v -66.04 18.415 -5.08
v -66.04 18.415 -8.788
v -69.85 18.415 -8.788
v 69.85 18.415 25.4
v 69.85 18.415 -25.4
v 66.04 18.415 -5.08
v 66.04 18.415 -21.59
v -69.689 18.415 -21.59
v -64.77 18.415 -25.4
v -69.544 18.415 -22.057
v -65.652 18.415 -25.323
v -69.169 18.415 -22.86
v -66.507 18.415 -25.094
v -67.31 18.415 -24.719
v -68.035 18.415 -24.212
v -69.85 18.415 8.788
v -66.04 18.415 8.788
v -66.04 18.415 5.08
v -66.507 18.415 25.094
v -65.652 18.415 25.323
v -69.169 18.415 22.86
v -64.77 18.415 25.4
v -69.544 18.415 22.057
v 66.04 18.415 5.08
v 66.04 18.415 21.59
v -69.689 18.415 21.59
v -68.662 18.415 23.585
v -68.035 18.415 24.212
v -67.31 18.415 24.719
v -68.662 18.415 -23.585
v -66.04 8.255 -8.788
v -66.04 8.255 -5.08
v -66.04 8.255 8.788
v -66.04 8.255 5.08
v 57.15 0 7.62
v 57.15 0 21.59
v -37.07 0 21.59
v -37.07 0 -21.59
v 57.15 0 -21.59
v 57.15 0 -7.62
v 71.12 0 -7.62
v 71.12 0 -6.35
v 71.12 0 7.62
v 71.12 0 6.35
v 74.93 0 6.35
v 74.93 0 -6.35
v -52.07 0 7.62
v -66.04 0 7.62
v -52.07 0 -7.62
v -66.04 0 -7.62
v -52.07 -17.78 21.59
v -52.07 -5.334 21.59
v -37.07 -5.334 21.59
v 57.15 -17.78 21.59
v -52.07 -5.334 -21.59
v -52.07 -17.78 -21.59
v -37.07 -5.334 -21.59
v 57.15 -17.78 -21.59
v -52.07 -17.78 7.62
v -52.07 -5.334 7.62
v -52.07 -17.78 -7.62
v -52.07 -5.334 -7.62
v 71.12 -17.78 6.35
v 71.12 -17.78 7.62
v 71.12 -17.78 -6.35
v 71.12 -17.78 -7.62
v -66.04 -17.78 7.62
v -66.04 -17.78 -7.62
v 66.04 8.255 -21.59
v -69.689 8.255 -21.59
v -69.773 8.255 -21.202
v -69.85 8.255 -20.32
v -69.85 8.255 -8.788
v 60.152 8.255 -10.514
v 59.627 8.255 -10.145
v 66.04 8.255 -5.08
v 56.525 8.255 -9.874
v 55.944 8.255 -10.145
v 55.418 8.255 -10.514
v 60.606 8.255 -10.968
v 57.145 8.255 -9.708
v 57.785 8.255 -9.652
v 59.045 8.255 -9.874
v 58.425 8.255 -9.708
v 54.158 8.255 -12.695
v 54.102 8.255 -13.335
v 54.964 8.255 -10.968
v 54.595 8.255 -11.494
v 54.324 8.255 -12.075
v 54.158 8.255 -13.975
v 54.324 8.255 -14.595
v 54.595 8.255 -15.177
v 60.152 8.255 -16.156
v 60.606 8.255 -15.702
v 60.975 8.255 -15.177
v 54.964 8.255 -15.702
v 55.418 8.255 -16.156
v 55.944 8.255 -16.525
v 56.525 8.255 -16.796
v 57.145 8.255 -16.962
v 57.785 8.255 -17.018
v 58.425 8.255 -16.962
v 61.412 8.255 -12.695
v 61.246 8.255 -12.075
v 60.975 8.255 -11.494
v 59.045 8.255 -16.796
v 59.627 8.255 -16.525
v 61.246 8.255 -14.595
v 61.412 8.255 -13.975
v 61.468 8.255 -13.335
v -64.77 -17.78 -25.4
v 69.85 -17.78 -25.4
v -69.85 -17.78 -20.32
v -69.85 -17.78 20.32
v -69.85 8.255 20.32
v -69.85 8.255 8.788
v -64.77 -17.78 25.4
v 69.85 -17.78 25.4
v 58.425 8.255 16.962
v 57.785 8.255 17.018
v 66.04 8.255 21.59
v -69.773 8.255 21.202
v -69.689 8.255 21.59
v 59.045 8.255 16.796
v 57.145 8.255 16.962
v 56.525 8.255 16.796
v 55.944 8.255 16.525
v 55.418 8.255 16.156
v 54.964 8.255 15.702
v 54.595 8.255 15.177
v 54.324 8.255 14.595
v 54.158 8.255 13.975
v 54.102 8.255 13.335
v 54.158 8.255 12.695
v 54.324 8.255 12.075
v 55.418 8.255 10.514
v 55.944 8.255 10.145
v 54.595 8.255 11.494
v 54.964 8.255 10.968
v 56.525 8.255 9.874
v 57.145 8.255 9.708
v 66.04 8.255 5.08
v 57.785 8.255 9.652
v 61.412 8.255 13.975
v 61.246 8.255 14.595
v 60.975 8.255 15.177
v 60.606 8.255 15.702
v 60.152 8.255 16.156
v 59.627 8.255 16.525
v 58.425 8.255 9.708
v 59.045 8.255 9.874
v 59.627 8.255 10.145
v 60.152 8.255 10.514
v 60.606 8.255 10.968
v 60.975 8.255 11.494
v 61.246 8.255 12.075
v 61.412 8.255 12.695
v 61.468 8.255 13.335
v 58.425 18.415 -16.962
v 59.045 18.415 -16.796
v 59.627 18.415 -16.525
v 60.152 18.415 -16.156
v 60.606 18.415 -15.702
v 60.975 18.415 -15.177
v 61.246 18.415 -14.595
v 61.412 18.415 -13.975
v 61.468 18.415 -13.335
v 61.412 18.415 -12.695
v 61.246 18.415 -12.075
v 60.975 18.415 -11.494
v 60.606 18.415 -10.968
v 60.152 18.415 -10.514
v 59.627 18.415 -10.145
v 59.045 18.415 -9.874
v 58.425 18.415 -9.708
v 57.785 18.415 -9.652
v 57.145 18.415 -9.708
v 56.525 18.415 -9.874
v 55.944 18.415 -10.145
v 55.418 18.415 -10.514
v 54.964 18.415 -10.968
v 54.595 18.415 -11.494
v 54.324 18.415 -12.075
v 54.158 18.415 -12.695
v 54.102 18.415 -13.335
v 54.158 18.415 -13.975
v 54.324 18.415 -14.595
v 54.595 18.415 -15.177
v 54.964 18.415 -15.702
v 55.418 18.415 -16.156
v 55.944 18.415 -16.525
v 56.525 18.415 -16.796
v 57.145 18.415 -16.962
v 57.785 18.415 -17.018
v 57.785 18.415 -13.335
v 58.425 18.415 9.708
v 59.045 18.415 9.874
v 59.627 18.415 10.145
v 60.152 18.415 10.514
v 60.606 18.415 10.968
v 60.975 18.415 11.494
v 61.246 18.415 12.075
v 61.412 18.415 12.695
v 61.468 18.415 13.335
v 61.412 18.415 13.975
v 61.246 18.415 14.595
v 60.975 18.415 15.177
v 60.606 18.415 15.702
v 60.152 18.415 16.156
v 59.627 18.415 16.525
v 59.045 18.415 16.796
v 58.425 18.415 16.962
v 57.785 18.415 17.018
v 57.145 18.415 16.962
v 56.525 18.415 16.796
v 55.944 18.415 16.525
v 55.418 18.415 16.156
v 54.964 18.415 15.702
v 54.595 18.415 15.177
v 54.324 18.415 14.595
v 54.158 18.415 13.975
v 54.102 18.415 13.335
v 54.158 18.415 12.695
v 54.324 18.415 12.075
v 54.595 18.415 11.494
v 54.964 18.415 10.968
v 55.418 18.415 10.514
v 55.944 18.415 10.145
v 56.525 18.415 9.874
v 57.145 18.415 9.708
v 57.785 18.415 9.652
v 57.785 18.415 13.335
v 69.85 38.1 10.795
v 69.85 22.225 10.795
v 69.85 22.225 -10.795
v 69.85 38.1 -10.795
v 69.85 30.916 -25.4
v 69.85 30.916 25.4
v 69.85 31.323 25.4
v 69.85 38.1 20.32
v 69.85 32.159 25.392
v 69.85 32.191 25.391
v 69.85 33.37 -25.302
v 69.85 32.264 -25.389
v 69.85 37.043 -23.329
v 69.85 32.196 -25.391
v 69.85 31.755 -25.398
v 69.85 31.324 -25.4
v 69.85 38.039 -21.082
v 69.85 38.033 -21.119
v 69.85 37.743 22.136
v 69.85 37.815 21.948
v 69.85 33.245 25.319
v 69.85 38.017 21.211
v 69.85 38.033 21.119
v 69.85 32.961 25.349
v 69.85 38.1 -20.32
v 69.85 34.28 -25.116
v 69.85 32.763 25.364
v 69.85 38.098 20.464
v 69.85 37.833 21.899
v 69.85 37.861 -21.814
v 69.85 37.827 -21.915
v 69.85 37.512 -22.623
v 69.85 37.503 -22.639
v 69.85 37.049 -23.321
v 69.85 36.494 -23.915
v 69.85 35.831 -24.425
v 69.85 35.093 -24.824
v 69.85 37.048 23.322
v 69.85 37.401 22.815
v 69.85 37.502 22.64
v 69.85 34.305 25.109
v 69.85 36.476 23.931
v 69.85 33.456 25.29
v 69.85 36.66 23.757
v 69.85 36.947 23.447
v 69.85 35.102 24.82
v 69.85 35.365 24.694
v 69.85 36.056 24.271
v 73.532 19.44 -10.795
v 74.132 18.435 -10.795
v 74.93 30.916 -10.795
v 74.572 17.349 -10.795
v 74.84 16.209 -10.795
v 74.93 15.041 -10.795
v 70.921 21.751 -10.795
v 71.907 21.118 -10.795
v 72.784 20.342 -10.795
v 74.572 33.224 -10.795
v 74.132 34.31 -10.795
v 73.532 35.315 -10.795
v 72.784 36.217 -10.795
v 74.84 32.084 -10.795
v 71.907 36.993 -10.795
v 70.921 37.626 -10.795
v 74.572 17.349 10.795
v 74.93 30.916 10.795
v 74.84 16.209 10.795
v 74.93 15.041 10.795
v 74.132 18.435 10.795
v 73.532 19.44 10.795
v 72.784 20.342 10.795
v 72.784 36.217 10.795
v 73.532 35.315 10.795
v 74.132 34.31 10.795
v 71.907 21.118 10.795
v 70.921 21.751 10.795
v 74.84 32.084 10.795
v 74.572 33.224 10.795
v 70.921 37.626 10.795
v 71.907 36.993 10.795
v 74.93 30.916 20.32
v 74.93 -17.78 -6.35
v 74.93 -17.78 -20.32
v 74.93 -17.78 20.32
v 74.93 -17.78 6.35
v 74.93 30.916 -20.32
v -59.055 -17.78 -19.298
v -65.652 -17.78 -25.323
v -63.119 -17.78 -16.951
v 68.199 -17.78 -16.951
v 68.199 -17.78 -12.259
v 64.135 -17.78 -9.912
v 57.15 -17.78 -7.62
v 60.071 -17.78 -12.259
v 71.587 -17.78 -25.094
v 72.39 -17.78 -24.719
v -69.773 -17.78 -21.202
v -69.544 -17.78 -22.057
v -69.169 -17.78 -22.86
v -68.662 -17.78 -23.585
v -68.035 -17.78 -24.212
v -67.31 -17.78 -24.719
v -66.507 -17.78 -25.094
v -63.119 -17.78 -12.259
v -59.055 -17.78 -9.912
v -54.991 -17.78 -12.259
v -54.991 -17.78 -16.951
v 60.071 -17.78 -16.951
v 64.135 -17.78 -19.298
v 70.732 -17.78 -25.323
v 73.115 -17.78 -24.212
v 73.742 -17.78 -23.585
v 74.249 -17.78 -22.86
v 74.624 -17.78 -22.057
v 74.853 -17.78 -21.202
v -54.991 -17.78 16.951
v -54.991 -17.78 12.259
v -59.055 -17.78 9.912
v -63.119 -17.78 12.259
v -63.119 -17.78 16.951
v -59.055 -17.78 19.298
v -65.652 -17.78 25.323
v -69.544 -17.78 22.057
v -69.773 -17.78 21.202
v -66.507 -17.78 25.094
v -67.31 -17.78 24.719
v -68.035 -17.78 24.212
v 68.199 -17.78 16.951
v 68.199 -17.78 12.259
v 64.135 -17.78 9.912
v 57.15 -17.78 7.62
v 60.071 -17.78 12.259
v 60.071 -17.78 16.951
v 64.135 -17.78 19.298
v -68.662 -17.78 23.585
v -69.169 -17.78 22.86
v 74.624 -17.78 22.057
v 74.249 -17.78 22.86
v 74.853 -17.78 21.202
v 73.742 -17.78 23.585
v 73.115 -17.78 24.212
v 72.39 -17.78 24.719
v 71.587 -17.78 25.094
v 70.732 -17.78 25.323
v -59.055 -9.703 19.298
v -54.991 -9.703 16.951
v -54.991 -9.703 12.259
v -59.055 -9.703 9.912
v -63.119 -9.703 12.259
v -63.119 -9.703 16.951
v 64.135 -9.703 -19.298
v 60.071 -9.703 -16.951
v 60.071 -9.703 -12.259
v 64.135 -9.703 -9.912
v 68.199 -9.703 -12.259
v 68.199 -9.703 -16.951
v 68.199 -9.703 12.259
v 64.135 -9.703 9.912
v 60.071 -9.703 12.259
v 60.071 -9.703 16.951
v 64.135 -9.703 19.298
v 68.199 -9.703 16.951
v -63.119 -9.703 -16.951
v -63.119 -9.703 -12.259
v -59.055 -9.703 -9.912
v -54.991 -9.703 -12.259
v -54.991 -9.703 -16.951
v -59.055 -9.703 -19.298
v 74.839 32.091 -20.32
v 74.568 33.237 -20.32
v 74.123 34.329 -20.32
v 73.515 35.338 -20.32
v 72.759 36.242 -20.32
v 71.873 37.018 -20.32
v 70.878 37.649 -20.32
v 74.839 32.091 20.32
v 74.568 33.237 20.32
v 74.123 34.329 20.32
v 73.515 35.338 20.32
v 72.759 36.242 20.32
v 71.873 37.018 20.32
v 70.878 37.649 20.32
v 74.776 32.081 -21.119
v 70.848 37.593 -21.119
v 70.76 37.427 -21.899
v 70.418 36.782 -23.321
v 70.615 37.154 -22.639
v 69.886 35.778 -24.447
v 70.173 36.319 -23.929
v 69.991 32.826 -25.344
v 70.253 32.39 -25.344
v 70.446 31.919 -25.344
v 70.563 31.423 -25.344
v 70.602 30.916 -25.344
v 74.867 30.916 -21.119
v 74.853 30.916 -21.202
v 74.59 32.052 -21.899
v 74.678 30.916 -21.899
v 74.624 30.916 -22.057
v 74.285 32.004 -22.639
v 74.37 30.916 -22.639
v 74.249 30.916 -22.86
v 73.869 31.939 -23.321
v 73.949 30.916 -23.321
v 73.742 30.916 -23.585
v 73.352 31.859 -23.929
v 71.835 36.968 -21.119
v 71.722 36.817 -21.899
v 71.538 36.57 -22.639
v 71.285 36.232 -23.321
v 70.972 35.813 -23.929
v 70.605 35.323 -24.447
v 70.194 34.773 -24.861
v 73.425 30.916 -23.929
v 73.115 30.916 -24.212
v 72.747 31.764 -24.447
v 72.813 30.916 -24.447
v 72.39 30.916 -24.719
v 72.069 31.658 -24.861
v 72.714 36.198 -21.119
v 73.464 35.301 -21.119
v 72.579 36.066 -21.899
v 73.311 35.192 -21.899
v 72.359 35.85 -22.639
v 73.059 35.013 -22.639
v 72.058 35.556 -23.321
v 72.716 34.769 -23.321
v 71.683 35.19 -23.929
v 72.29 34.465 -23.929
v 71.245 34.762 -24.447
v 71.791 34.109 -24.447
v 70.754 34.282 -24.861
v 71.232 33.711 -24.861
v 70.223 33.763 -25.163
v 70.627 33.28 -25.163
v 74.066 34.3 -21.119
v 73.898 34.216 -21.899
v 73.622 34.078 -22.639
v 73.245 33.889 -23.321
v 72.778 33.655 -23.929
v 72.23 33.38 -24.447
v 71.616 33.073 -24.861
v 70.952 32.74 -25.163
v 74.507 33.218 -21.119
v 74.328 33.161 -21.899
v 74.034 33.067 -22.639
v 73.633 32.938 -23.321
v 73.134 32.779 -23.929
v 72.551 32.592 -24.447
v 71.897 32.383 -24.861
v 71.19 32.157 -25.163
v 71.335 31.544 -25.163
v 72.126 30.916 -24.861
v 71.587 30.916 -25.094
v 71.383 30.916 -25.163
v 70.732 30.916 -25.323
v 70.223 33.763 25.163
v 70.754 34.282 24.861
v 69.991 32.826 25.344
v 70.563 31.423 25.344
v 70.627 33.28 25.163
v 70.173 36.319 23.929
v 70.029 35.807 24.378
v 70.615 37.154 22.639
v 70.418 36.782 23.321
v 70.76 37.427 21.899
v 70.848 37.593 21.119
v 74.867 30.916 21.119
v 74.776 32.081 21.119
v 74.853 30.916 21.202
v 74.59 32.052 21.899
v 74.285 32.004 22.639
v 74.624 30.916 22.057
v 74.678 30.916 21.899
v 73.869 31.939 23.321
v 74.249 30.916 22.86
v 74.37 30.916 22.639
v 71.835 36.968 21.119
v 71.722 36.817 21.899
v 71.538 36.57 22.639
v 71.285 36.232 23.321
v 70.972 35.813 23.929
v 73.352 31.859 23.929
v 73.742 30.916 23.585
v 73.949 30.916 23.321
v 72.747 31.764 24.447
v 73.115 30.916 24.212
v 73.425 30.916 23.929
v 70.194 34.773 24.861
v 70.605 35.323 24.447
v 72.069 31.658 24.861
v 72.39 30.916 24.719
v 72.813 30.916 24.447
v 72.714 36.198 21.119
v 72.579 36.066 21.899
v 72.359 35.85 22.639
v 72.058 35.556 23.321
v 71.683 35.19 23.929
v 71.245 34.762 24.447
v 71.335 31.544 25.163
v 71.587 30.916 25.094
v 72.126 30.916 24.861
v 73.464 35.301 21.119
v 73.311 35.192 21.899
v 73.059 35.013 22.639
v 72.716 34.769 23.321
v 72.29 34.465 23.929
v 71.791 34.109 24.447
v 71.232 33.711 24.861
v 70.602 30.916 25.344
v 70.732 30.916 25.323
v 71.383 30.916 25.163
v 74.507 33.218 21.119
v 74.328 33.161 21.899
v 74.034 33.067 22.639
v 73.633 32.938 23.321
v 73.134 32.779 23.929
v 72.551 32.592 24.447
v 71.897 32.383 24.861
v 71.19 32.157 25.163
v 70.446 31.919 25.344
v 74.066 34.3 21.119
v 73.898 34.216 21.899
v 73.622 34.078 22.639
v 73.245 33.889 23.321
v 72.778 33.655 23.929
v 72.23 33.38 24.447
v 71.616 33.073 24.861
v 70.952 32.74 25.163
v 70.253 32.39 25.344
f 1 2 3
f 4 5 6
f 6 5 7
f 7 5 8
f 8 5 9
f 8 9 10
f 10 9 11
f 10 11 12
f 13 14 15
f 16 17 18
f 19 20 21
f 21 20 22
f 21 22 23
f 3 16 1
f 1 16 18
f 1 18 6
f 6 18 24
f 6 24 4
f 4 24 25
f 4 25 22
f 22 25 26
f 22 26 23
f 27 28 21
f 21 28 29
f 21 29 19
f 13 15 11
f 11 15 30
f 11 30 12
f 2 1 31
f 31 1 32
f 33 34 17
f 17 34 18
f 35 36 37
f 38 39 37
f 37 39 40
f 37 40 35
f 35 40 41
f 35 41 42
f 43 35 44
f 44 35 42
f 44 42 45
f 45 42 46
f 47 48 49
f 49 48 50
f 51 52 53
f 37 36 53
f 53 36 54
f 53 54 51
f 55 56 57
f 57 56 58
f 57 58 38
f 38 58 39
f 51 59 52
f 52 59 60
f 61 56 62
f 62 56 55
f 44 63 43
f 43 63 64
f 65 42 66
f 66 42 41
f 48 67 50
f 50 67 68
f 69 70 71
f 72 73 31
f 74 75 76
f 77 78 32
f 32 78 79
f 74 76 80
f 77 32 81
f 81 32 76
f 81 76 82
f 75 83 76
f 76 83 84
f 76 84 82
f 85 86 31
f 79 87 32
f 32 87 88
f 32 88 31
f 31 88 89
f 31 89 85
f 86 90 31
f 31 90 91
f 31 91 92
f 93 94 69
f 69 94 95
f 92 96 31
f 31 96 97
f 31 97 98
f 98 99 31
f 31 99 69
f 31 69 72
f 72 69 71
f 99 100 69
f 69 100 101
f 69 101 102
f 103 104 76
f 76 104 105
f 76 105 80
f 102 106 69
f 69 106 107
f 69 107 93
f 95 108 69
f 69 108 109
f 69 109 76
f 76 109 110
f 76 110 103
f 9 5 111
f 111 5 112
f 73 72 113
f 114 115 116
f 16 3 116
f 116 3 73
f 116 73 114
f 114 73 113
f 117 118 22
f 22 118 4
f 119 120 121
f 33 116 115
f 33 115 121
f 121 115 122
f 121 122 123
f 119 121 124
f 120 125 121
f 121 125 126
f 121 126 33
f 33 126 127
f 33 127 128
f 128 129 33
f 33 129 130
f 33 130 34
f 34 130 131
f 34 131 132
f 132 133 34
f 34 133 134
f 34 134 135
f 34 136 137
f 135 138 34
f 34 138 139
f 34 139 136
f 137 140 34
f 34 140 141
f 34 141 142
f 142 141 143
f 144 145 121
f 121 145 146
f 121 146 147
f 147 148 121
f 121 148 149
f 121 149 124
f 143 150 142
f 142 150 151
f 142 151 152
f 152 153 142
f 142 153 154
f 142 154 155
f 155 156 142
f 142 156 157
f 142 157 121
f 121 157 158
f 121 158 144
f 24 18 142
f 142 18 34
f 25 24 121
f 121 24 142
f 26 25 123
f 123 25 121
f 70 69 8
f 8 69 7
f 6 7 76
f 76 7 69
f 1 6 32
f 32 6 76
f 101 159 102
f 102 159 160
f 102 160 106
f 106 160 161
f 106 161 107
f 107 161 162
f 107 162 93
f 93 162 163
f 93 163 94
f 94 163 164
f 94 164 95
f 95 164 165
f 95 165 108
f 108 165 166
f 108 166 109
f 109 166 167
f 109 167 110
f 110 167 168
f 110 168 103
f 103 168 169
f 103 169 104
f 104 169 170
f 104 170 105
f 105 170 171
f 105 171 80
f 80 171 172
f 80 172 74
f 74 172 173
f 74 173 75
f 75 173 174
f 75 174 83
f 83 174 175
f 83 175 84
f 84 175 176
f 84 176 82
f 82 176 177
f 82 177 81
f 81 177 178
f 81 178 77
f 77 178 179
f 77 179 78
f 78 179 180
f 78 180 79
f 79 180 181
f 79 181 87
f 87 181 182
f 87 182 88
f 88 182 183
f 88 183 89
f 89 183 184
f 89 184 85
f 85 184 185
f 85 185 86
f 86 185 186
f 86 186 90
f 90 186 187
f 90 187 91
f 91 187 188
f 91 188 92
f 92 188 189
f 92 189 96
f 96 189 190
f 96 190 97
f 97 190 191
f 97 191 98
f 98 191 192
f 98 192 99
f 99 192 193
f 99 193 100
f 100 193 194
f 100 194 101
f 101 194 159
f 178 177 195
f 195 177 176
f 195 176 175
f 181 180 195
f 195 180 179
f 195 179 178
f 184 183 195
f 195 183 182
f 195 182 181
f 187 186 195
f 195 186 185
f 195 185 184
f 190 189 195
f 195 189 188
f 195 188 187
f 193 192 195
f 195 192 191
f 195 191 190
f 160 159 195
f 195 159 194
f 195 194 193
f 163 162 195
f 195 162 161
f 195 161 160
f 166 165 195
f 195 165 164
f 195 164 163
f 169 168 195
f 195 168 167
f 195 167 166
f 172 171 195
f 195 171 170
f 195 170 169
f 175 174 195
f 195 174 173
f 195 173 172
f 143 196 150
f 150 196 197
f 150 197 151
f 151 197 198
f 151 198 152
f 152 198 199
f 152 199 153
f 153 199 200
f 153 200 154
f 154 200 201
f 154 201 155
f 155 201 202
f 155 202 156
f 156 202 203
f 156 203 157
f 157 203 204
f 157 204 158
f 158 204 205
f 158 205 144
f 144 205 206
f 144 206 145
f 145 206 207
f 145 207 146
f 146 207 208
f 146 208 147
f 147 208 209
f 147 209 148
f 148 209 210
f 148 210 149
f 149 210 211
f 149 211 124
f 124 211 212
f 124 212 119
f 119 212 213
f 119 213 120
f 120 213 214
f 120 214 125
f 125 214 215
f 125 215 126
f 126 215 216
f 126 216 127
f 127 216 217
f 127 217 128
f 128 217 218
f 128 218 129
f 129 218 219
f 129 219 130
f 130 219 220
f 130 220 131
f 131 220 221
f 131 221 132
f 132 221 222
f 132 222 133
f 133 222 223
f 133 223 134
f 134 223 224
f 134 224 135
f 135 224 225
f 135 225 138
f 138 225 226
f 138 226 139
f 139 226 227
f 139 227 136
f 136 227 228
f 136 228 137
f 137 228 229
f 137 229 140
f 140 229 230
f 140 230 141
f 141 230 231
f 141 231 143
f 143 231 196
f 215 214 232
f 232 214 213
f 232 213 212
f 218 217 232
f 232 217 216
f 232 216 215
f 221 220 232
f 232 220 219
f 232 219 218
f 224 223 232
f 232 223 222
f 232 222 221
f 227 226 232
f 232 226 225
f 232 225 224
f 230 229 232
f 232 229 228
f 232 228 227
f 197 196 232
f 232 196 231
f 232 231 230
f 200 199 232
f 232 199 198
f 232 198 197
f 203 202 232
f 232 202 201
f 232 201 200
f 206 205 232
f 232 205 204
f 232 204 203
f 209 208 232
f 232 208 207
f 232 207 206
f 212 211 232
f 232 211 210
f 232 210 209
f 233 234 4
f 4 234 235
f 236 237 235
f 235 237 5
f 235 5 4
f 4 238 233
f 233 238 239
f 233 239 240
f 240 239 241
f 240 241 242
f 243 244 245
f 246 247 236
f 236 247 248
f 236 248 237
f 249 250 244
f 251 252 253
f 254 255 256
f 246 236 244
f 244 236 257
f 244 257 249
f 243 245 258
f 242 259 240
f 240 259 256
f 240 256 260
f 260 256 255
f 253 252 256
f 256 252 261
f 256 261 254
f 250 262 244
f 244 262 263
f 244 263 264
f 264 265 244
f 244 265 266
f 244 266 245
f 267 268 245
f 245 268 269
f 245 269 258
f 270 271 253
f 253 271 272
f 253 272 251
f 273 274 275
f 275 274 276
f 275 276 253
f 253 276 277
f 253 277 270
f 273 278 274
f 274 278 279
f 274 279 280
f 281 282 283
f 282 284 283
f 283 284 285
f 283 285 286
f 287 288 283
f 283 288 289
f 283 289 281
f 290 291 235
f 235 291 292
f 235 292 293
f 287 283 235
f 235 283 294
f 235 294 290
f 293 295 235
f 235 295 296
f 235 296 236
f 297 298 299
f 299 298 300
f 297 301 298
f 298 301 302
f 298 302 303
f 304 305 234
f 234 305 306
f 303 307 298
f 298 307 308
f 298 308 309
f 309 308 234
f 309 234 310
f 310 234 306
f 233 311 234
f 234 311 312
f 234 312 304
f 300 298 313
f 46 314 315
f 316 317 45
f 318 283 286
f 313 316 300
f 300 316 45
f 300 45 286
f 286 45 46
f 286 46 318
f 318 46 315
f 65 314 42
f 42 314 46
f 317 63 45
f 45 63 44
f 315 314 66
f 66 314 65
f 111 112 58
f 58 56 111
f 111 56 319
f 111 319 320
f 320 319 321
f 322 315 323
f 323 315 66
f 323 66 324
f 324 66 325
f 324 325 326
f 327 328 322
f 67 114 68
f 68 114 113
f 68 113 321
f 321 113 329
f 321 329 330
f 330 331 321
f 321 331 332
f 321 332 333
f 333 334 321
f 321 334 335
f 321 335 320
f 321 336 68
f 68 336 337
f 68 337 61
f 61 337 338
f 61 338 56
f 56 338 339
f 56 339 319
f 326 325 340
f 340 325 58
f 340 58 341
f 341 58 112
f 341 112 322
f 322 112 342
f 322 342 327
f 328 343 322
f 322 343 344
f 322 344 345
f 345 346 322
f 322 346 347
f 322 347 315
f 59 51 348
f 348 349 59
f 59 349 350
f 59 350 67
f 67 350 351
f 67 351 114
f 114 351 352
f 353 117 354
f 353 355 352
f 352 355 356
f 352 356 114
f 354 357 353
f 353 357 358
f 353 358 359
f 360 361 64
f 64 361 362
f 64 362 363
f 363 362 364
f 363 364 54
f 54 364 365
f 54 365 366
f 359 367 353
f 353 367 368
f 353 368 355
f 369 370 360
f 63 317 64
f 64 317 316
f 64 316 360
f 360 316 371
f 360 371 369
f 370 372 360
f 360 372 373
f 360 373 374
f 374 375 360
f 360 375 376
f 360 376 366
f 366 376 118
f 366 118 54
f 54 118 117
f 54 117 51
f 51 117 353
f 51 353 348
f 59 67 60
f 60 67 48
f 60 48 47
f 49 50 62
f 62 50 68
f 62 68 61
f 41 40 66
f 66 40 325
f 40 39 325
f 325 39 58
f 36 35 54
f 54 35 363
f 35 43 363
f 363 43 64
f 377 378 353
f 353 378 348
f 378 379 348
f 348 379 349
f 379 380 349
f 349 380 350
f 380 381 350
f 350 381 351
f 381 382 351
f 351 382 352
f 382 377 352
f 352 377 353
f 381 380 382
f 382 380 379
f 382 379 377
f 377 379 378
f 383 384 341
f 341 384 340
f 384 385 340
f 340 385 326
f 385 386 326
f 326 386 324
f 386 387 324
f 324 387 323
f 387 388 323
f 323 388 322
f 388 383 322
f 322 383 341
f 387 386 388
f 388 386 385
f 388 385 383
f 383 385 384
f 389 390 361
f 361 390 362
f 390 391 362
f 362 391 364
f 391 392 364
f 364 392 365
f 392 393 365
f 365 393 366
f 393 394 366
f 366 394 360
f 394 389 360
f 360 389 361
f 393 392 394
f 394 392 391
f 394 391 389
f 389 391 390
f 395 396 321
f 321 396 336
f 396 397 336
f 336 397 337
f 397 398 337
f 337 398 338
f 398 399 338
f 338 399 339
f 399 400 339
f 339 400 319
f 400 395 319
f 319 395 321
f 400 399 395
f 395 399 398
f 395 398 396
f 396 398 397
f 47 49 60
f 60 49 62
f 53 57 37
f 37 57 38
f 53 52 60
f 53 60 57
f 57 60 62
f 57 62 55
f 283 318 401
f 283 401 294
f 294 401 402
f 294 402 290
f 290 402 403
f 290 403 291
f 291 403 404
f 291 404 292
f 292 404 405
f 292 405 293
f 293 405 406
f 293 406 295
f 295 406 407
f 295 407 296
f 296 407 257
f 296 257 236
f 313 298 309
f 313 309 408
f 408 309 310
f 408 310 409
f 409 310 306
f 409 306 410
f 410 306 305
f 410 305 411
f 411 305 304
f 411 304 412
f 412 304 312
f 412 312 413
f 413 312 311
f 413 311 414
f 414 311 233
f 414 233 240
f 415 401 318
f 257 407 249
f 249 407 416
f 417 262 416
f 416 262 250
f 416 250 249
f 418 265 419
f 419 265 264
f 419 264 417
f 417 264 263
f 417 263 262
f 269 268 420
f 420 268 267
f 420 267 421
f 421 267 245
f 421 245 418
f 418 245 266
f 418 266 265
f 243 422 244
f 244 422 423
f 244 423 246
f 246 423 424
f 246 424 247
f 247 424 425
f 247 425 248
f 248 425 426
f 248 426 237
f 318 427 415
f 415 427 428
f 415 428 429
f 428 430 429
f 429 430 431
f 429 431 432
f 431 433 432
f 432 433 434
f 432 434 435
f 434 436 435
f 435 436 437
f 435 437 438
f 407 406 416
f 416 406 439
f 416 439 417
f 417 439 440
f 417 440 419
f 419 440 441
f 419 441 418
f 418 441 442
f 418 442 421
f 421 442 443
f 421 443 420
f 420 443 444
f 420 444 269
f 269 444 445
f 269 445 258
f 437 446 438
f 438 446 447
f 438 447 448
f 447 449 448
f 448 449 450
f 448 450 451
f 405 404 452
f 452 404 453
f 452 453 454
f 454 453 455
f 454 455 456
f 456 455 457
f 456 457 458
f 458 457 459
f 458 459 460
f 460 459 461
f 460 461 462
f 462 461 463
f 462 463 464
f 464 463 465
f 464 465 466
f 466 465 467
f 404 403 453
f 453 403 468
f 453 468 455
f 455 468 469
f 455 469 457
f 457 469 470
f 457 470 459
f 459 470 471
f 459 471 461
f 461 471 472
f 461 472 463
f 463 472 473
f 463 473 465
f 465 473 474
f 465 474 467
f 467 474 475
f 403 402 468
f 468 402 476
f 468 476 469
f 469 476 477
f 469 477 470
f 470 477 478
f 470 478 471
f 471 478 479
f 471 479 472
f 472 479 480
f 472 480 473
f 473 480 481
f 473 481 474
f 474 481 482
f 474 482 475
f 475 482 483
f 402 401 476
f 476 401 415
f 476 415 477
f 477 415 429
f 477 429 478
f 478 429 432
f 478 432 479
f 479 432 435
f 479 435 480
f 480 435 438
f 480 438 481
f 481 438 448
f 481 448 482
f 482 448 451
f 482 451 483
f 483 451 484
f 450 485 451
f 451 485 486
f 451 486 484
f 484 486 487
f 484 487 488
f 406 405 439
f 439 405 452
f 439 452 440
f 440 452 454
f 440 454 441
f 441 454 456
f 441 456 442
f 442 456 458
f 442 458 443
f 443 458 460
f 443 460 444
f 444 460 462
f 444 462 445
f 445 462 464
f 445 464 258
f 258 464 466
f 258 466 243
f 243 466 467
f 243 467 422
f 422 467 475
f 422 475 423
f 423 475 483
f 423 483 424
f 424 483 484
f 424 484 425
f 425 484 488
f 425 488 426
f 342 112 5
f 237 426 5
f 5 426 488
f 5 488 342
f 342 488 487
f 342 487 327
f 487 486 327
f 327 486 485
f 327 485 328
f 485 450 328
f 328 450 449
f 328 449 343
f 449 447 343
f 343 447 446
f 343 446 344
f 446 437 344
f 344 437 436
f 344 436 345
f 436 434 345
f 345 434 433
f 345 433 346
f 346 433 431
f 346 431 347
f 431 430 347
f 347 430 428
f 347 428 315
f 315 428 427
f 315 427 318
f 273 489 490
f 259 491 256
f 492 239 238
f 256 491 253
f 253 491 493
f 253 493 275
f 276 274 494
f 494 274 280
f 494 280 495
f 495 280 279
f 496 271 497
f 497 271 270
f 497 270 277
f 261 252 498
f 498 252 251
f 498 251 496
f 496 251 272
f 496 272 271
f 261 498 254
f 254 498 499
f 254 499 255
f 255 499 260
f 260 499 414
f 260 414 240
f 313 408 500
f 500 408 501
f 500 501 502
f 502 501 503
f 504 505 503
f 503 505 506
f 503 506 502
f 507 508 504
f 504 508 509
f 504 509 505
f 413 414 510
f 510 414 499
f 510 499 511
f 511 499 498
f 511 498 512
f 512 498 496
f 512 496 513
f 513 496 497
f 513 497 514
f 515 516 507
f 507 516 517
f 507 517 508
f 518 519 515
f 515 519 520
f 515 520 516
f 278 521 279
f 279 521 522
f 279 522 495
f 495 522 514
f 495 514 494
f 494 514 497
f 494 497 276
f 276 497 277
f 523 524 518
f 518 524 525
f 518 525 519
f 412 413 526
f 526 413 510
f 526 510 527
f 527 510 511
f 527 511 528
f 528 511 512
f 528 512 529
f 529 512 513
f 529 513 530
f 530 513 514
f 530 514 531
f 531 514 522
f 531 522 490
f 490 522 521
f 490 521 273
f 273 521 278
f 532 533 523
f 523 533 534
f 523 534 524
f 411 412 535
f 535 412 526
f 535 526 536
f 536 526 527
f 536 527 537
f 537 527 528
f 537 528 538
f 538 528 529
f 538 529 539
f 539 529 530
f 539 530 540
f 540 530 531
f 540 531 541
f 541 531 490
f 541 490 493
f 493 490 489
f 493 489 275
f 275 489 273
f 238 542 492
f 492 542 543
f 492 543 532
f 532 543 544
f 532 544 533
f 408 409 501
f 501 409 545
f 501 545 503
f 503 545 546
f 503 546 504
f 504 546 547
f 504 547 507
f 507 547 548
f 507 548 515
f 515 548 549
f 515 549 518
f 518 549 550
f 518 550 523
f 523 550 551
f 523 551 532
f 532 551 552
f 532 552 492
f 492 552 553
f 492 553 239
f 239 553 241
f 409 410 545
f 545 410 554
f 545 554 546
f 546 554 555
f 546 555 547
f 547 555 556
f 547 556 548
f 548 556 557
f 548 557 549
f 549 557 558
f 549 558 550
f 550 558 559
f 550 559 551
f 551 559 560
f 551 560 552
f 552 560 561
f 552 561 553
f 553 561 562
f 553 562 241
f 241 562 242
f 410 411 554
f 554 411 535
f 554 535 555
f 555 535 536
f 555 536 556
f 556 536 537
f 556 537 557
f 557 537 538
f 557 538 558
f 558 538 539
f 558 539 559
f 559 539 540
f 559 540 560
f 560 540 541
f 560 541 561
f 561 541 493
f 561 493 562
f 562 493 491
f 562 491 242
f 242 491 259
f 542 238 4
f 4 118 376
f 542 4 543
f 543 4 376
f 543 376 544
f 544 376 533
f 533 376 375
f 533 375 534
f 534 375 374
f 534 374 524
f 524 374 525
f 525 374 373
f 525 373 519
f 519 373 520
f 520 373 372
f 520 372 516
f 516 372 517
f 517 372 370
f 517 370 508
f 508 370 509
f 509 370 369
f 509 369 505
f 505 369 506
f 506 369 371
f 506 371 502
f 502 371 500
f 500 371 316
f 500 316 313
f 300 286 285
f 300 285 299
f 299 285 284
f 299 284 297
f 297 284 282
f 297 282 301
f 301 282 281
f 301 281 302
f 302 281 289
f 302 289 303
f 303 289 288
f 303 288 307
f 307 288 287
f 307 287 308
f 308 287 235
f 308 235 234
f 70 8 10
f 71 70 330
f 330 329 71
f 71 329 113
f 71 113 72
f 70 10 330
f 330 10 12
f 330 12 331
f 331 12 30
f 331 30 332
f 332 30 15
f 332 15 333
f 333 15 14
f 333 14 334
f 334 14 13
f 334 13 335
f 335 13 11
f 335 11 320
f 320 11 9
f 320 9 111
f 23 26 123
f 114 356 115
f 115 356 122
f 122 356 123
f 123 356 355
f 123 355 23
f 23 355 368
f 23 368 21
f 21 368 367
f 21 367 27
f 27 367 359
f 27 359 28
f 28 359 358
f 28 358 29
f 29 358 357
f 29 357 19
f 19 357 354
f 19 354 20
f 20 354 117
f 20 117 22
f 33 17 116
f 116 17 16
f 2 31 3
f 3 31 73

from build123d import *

# Parameters (mm, degrees)
SKETCH1_W              = 139.7
SKETCH1_H              = 50.8
BASE_DEPTH             = 8.255
MECHANISM_WALLS_DEPTH  = 10.16
SKETCH4_R              = 3.683
SPRING_CYLINDERS_DEPTH = 10.16
WALL_DEPTH             = 5.08
CIRCUIT_WALLS_DEPTH    = 17.78
SKETCH8_W              = 13.97
SKETCH8_H              = 13.97
MAGNET_JUNCTIONS_DEPTH = 17.78
MAGNET_HOLES_DEPTH     = 8.0772
SKETCH10_W             = 15
SKETCH10_H             = 43.18
BOSS_EXTRUDE1_DEPTH    = 5.334
FILLET1_R              = 7.62
FILLET2_R              = 5.08
FILLET4_R              = 7.62
FILLET5_R              = 5.08
SKETCH11_W             = 3.81
SKETCH11_H             = 10.16
CUT_EXTRUDE1_DEPTH     = 0.1016
SKETCH12_W             = 17.160016071
SKETCH12_H             = 10.16
CUT_EXTRUDE2_DEPTH     = 0.1016


# Some blends are built 0.0001 mm under size
with BuildPart() as part:
    # Sketch1 → base (new body)
    with BuildSketch(Plane(origin=(0, 0, 0), x_dir=(1, 0, 0), z_dir=(0, 1, 0))):
        Rectangle(SKETCH1_W, SKETCH1_H)
    extrude(amount=BASE_DEPTH)

    # Sketch3 → mechanism walls (add)
    with BuildSketch(Plane(origin=(0, 8.255, 0), x_dir=(1, 0, 0), z_dir=(0, 1, 0))):
        Polygon((69.85, 25.4), (-69.85, 25.4), (-69.85, 21.59), (66.04, 21.59), (66.04, 5.08), (-66.04, 5.08), (-66.04, 8.89), (-69.85, 8.89), (-69.85, -8.89), (-66.04, -8.89), (-66.04, -5.08), (66.04, -5.08), (66.04, -21.59), (-69.85, -21.59), (-69.85, -25.4), (69.85, -25.4), align=None)
    extrude(amount=MECHANISM_WALLS_DEPTH)

    # Sketch4 → spring cylinders (add)
    with BuildSketch(Plane(origin=(0, 8.255, 0), x_dir=(1, 0, 0), z_dir=(0, 1, 0))):
        with Locations(Location((57.785, 13.335, 0), (0, 0, 90))):
            Circle(SKETCH4_R)
        with Locations(Location((57.785, -13.335, 0), (0, 0, 90))):
            Circle(SKETCH4_R)
    extrude(amount=SPRING_CYLINDERS_DEPTH)

    # Sketch6 → wall (add)
    with BuildSketch(Plane(origin=(69.85, 0, 0), x_dir=(0, 0, -1), z_dir=(1, 0, 0))):
        Polygon((-25.4, 0), (25.4, 0), (25.4, 38.1), (10.795, 38.1), (10.795, 22.225), (-10.795, 22.225), (-10.795, 38.1), (-25.4, 38.1), align=None)
    extrude(amount=WALL_DEPTH)

    # Sketch7 → circuit walls (add)
    with BuildSketch(Plane.XZ):
        Polygon((74.93, 25.4), (74.93, 6.35), (71.12, 6.35), (71.12, 21.59), (-66.04, 21.59), (-66.04, -21.59), (71.12, -21.59), (71.12, -6.35), (74.93, -6.35), (74.93, -25.4), (-69.85, -25.4), (-69.85, 25.4), align=None)
    extrude(amount=CIRCUIT_WALLS_DEPTH)

    # Sketch8 → magnet junctions (add)
    with BuildSketch(Plane.XZ):
        with Locations((-59.055, 14.605)):
            Rectangle(SKETCH8_W, SKETCH8_H)
        with Locations((-59.055, -14.605)):
            Rectangle(SKETCH8_W, SKETCH8_H)
        with Locations((64.135, -14.605)):
            Rectangle(SKETCH8_W, SKETCH8_H)
        with Locations((64.135, 14.605)):
            Rectangle(SKETCH8_W, SKETCH8_H)
    extrude(amount=MAGNET_JUNCTIONS_DEPTH)

    # Sketch9 → magnet holes (cut)
    with BuildSketch(Plane.XZ.offset(17.78)):
        Polygon((-59.055, 19.297702988), (-63.119, 16.951351494), (-63.119, 12.258648506), (-59.055, 9.912297012), (-54.991, 12.258648506), (-54.991, 16.951351494), align=None)
        Polygon((-63.119, -12.258648506), (-59.055, -9.912297012), (-54.991, -12.258648506), (-54.991, -16.951351494), (-59.055, -19.297702988), (-63.119, -16.951351494), align=None)
        Polygon((64.135, 9.912297012), (60.071, 12.258648506), (60.071, 16.951351494), (64.135, 19.297702988), (68.199, 16.951351494), (68.199, 12.258648506), align=None)
        Polygon((64.135, -19.297702988), (68.199, -16.951351494), (68.199, -12.258648506), (64.135, -9.912297012), (60.071, -12.258648506), (60.071, -16.951351494), align=None)
    extrude(amount=-MAGNET_HOLES_DEPTH, mode=Mode.SUBTRACT)

    # Sketch10 → Boss-Extrude1 (add)
    with BuildSketch(Plane.XZ):
        with Locations((-44.57, 0)):
            Rectangle(SKETCH10_W, SKETCH10_H)
    extrude(amount=BOSS_EXTRUDE1_DEPTH)

    # Fillet1
    # the kernel refuses this fillet: 7.62 mm, written as the material it takes off along each edge
    with BuildSketch(Plane(origin=(74.93, 38.1, -43.360512242), x_dir=(0, -1, 0), z_dir=(0, 0, 1))) as fillet1_piece_1:
        with BuildLine():
            CenterArc((7.184204897, -7.62), FILLET1_R, 90, 70.528779366)
            Line((0, -5.08), (-0.143684098, -5.0292))
            ThreePointArc((-0.143684098, -5.0292), (-0.1524, -2.54), (-0.1524, 0))
            Line((-0.1524, 0), (0, 0.1524))
            Line((0, 0.1524), (7.184204897, 0.1524))
            Line((7.184204897, 0.1524), (7.184204897, 0))
        make_face()
    extrude(amount=50.526024484, mode=Mode.SUBTRACT)
    with BuildSketch(Plane(origin=(74.93, 38.1, -7.165512242), x_dir=(-1, 0, 0), z_dir=(0, 0, 1))) as fillet1_piece_2:
        with BuildLine():
            CenterArc((7.62, 7.184204897), FILLET1_R, 180, 70.528779366)
            Line((0, 7.184204897), (-0.1524, 7.184204897))
            Line((-0.1524, 7.184204897), (-0.1524, 0))
            Line((-0.1524, 0), (0, -0.1524))
            ThreePointArc((0, -0.1524), (2.54, -0.1524), (5.0292, -0.143684098))
            Line((5.0292, -0.143684098), (5.08, 0))
        make_face()
    extrude(amount=50.526024484, mode=Mode.SUBTRACT)

    # Fillet2
    fillet2_edges = [part.edges().sort_by_distance(p)[0] for p in [
        (74.93, 6.567897552, 25.4),
        (73.531703947, 35.315204154, -25.4),
        (73.531703947, 35.315204154, 25.4),
        (74.93, 6.567897552, -25.4),
    ]]
    fillet(fillet2_edges, radius=FILLET2_R - 0.0001)  # a hair under: the kernel refuses the full size

    # Fillet4
    # the kernel refuses this fillet: 7.62 mm, written as the material it takes off along each edge
    with BuildSketch(Plane(origin=(74.93, 22.225, -10.795), x_dir=(0, -1, 0), z_dir=(0, 0, 1))) as fillet4_piece_1:
        with BuildLine():
            CenterArc((7.184204897, -7.62), FILLET4_R, 90, 70.528779366)
            Line((0, -5.08), (-0.143684098, -5.0292))
            ThreePointArc((-0.143684098, -5.0292), (-0.1524, -2.54), (-0.1524, 0))
            Line((-0.1524, 0), (0, 0.1524))
            Line((0, 0.1524), (7.184204897, 0.1524))
            Line((7.184204897, 0.1524), (7.184204897, 0))
        make_face()
    extrude(amount=21.59, mode=Mode.SUBTRACT)

    # Fillet5
    fillet5_edges = [part.edges().sort_by_distance(p)[0] for p in [
        (-69.85, 0.3175, -25.4),
        (-69.85, 0.3175, 25.4),
    ]]
    fillet(fillet5_edges, radius=FILLET5_R)

    # Sketch11 → Cut-Extrude1 (cut)
    with BuildSketch(Plane.XY.offset(8.89)):
        with Locations((-67.945, 13.335)):
            Rectangle(SKETCH11_W, SKETCH11_H)
    extrude(amount=-CUT_EXTRUDE1_DEPTH, mode=Mode.SUBTRACT)

    # Sketch12 → Cut-Extrude2 (cut)
    with BuildSketch(Plane(origin=(0, 0, -8.89), x_dir=(-1, 0, 0), z_dir=(0, 0, -1))):
        with Locations((74.620008036, 13.335)):
            Rectangle(SKETCH12_W, SKETCH12_H)
    extrude(amount=-CUT_EXTRUDE2_DEPTH, mode=Mode.SUBTRACT)


solid = part.part
